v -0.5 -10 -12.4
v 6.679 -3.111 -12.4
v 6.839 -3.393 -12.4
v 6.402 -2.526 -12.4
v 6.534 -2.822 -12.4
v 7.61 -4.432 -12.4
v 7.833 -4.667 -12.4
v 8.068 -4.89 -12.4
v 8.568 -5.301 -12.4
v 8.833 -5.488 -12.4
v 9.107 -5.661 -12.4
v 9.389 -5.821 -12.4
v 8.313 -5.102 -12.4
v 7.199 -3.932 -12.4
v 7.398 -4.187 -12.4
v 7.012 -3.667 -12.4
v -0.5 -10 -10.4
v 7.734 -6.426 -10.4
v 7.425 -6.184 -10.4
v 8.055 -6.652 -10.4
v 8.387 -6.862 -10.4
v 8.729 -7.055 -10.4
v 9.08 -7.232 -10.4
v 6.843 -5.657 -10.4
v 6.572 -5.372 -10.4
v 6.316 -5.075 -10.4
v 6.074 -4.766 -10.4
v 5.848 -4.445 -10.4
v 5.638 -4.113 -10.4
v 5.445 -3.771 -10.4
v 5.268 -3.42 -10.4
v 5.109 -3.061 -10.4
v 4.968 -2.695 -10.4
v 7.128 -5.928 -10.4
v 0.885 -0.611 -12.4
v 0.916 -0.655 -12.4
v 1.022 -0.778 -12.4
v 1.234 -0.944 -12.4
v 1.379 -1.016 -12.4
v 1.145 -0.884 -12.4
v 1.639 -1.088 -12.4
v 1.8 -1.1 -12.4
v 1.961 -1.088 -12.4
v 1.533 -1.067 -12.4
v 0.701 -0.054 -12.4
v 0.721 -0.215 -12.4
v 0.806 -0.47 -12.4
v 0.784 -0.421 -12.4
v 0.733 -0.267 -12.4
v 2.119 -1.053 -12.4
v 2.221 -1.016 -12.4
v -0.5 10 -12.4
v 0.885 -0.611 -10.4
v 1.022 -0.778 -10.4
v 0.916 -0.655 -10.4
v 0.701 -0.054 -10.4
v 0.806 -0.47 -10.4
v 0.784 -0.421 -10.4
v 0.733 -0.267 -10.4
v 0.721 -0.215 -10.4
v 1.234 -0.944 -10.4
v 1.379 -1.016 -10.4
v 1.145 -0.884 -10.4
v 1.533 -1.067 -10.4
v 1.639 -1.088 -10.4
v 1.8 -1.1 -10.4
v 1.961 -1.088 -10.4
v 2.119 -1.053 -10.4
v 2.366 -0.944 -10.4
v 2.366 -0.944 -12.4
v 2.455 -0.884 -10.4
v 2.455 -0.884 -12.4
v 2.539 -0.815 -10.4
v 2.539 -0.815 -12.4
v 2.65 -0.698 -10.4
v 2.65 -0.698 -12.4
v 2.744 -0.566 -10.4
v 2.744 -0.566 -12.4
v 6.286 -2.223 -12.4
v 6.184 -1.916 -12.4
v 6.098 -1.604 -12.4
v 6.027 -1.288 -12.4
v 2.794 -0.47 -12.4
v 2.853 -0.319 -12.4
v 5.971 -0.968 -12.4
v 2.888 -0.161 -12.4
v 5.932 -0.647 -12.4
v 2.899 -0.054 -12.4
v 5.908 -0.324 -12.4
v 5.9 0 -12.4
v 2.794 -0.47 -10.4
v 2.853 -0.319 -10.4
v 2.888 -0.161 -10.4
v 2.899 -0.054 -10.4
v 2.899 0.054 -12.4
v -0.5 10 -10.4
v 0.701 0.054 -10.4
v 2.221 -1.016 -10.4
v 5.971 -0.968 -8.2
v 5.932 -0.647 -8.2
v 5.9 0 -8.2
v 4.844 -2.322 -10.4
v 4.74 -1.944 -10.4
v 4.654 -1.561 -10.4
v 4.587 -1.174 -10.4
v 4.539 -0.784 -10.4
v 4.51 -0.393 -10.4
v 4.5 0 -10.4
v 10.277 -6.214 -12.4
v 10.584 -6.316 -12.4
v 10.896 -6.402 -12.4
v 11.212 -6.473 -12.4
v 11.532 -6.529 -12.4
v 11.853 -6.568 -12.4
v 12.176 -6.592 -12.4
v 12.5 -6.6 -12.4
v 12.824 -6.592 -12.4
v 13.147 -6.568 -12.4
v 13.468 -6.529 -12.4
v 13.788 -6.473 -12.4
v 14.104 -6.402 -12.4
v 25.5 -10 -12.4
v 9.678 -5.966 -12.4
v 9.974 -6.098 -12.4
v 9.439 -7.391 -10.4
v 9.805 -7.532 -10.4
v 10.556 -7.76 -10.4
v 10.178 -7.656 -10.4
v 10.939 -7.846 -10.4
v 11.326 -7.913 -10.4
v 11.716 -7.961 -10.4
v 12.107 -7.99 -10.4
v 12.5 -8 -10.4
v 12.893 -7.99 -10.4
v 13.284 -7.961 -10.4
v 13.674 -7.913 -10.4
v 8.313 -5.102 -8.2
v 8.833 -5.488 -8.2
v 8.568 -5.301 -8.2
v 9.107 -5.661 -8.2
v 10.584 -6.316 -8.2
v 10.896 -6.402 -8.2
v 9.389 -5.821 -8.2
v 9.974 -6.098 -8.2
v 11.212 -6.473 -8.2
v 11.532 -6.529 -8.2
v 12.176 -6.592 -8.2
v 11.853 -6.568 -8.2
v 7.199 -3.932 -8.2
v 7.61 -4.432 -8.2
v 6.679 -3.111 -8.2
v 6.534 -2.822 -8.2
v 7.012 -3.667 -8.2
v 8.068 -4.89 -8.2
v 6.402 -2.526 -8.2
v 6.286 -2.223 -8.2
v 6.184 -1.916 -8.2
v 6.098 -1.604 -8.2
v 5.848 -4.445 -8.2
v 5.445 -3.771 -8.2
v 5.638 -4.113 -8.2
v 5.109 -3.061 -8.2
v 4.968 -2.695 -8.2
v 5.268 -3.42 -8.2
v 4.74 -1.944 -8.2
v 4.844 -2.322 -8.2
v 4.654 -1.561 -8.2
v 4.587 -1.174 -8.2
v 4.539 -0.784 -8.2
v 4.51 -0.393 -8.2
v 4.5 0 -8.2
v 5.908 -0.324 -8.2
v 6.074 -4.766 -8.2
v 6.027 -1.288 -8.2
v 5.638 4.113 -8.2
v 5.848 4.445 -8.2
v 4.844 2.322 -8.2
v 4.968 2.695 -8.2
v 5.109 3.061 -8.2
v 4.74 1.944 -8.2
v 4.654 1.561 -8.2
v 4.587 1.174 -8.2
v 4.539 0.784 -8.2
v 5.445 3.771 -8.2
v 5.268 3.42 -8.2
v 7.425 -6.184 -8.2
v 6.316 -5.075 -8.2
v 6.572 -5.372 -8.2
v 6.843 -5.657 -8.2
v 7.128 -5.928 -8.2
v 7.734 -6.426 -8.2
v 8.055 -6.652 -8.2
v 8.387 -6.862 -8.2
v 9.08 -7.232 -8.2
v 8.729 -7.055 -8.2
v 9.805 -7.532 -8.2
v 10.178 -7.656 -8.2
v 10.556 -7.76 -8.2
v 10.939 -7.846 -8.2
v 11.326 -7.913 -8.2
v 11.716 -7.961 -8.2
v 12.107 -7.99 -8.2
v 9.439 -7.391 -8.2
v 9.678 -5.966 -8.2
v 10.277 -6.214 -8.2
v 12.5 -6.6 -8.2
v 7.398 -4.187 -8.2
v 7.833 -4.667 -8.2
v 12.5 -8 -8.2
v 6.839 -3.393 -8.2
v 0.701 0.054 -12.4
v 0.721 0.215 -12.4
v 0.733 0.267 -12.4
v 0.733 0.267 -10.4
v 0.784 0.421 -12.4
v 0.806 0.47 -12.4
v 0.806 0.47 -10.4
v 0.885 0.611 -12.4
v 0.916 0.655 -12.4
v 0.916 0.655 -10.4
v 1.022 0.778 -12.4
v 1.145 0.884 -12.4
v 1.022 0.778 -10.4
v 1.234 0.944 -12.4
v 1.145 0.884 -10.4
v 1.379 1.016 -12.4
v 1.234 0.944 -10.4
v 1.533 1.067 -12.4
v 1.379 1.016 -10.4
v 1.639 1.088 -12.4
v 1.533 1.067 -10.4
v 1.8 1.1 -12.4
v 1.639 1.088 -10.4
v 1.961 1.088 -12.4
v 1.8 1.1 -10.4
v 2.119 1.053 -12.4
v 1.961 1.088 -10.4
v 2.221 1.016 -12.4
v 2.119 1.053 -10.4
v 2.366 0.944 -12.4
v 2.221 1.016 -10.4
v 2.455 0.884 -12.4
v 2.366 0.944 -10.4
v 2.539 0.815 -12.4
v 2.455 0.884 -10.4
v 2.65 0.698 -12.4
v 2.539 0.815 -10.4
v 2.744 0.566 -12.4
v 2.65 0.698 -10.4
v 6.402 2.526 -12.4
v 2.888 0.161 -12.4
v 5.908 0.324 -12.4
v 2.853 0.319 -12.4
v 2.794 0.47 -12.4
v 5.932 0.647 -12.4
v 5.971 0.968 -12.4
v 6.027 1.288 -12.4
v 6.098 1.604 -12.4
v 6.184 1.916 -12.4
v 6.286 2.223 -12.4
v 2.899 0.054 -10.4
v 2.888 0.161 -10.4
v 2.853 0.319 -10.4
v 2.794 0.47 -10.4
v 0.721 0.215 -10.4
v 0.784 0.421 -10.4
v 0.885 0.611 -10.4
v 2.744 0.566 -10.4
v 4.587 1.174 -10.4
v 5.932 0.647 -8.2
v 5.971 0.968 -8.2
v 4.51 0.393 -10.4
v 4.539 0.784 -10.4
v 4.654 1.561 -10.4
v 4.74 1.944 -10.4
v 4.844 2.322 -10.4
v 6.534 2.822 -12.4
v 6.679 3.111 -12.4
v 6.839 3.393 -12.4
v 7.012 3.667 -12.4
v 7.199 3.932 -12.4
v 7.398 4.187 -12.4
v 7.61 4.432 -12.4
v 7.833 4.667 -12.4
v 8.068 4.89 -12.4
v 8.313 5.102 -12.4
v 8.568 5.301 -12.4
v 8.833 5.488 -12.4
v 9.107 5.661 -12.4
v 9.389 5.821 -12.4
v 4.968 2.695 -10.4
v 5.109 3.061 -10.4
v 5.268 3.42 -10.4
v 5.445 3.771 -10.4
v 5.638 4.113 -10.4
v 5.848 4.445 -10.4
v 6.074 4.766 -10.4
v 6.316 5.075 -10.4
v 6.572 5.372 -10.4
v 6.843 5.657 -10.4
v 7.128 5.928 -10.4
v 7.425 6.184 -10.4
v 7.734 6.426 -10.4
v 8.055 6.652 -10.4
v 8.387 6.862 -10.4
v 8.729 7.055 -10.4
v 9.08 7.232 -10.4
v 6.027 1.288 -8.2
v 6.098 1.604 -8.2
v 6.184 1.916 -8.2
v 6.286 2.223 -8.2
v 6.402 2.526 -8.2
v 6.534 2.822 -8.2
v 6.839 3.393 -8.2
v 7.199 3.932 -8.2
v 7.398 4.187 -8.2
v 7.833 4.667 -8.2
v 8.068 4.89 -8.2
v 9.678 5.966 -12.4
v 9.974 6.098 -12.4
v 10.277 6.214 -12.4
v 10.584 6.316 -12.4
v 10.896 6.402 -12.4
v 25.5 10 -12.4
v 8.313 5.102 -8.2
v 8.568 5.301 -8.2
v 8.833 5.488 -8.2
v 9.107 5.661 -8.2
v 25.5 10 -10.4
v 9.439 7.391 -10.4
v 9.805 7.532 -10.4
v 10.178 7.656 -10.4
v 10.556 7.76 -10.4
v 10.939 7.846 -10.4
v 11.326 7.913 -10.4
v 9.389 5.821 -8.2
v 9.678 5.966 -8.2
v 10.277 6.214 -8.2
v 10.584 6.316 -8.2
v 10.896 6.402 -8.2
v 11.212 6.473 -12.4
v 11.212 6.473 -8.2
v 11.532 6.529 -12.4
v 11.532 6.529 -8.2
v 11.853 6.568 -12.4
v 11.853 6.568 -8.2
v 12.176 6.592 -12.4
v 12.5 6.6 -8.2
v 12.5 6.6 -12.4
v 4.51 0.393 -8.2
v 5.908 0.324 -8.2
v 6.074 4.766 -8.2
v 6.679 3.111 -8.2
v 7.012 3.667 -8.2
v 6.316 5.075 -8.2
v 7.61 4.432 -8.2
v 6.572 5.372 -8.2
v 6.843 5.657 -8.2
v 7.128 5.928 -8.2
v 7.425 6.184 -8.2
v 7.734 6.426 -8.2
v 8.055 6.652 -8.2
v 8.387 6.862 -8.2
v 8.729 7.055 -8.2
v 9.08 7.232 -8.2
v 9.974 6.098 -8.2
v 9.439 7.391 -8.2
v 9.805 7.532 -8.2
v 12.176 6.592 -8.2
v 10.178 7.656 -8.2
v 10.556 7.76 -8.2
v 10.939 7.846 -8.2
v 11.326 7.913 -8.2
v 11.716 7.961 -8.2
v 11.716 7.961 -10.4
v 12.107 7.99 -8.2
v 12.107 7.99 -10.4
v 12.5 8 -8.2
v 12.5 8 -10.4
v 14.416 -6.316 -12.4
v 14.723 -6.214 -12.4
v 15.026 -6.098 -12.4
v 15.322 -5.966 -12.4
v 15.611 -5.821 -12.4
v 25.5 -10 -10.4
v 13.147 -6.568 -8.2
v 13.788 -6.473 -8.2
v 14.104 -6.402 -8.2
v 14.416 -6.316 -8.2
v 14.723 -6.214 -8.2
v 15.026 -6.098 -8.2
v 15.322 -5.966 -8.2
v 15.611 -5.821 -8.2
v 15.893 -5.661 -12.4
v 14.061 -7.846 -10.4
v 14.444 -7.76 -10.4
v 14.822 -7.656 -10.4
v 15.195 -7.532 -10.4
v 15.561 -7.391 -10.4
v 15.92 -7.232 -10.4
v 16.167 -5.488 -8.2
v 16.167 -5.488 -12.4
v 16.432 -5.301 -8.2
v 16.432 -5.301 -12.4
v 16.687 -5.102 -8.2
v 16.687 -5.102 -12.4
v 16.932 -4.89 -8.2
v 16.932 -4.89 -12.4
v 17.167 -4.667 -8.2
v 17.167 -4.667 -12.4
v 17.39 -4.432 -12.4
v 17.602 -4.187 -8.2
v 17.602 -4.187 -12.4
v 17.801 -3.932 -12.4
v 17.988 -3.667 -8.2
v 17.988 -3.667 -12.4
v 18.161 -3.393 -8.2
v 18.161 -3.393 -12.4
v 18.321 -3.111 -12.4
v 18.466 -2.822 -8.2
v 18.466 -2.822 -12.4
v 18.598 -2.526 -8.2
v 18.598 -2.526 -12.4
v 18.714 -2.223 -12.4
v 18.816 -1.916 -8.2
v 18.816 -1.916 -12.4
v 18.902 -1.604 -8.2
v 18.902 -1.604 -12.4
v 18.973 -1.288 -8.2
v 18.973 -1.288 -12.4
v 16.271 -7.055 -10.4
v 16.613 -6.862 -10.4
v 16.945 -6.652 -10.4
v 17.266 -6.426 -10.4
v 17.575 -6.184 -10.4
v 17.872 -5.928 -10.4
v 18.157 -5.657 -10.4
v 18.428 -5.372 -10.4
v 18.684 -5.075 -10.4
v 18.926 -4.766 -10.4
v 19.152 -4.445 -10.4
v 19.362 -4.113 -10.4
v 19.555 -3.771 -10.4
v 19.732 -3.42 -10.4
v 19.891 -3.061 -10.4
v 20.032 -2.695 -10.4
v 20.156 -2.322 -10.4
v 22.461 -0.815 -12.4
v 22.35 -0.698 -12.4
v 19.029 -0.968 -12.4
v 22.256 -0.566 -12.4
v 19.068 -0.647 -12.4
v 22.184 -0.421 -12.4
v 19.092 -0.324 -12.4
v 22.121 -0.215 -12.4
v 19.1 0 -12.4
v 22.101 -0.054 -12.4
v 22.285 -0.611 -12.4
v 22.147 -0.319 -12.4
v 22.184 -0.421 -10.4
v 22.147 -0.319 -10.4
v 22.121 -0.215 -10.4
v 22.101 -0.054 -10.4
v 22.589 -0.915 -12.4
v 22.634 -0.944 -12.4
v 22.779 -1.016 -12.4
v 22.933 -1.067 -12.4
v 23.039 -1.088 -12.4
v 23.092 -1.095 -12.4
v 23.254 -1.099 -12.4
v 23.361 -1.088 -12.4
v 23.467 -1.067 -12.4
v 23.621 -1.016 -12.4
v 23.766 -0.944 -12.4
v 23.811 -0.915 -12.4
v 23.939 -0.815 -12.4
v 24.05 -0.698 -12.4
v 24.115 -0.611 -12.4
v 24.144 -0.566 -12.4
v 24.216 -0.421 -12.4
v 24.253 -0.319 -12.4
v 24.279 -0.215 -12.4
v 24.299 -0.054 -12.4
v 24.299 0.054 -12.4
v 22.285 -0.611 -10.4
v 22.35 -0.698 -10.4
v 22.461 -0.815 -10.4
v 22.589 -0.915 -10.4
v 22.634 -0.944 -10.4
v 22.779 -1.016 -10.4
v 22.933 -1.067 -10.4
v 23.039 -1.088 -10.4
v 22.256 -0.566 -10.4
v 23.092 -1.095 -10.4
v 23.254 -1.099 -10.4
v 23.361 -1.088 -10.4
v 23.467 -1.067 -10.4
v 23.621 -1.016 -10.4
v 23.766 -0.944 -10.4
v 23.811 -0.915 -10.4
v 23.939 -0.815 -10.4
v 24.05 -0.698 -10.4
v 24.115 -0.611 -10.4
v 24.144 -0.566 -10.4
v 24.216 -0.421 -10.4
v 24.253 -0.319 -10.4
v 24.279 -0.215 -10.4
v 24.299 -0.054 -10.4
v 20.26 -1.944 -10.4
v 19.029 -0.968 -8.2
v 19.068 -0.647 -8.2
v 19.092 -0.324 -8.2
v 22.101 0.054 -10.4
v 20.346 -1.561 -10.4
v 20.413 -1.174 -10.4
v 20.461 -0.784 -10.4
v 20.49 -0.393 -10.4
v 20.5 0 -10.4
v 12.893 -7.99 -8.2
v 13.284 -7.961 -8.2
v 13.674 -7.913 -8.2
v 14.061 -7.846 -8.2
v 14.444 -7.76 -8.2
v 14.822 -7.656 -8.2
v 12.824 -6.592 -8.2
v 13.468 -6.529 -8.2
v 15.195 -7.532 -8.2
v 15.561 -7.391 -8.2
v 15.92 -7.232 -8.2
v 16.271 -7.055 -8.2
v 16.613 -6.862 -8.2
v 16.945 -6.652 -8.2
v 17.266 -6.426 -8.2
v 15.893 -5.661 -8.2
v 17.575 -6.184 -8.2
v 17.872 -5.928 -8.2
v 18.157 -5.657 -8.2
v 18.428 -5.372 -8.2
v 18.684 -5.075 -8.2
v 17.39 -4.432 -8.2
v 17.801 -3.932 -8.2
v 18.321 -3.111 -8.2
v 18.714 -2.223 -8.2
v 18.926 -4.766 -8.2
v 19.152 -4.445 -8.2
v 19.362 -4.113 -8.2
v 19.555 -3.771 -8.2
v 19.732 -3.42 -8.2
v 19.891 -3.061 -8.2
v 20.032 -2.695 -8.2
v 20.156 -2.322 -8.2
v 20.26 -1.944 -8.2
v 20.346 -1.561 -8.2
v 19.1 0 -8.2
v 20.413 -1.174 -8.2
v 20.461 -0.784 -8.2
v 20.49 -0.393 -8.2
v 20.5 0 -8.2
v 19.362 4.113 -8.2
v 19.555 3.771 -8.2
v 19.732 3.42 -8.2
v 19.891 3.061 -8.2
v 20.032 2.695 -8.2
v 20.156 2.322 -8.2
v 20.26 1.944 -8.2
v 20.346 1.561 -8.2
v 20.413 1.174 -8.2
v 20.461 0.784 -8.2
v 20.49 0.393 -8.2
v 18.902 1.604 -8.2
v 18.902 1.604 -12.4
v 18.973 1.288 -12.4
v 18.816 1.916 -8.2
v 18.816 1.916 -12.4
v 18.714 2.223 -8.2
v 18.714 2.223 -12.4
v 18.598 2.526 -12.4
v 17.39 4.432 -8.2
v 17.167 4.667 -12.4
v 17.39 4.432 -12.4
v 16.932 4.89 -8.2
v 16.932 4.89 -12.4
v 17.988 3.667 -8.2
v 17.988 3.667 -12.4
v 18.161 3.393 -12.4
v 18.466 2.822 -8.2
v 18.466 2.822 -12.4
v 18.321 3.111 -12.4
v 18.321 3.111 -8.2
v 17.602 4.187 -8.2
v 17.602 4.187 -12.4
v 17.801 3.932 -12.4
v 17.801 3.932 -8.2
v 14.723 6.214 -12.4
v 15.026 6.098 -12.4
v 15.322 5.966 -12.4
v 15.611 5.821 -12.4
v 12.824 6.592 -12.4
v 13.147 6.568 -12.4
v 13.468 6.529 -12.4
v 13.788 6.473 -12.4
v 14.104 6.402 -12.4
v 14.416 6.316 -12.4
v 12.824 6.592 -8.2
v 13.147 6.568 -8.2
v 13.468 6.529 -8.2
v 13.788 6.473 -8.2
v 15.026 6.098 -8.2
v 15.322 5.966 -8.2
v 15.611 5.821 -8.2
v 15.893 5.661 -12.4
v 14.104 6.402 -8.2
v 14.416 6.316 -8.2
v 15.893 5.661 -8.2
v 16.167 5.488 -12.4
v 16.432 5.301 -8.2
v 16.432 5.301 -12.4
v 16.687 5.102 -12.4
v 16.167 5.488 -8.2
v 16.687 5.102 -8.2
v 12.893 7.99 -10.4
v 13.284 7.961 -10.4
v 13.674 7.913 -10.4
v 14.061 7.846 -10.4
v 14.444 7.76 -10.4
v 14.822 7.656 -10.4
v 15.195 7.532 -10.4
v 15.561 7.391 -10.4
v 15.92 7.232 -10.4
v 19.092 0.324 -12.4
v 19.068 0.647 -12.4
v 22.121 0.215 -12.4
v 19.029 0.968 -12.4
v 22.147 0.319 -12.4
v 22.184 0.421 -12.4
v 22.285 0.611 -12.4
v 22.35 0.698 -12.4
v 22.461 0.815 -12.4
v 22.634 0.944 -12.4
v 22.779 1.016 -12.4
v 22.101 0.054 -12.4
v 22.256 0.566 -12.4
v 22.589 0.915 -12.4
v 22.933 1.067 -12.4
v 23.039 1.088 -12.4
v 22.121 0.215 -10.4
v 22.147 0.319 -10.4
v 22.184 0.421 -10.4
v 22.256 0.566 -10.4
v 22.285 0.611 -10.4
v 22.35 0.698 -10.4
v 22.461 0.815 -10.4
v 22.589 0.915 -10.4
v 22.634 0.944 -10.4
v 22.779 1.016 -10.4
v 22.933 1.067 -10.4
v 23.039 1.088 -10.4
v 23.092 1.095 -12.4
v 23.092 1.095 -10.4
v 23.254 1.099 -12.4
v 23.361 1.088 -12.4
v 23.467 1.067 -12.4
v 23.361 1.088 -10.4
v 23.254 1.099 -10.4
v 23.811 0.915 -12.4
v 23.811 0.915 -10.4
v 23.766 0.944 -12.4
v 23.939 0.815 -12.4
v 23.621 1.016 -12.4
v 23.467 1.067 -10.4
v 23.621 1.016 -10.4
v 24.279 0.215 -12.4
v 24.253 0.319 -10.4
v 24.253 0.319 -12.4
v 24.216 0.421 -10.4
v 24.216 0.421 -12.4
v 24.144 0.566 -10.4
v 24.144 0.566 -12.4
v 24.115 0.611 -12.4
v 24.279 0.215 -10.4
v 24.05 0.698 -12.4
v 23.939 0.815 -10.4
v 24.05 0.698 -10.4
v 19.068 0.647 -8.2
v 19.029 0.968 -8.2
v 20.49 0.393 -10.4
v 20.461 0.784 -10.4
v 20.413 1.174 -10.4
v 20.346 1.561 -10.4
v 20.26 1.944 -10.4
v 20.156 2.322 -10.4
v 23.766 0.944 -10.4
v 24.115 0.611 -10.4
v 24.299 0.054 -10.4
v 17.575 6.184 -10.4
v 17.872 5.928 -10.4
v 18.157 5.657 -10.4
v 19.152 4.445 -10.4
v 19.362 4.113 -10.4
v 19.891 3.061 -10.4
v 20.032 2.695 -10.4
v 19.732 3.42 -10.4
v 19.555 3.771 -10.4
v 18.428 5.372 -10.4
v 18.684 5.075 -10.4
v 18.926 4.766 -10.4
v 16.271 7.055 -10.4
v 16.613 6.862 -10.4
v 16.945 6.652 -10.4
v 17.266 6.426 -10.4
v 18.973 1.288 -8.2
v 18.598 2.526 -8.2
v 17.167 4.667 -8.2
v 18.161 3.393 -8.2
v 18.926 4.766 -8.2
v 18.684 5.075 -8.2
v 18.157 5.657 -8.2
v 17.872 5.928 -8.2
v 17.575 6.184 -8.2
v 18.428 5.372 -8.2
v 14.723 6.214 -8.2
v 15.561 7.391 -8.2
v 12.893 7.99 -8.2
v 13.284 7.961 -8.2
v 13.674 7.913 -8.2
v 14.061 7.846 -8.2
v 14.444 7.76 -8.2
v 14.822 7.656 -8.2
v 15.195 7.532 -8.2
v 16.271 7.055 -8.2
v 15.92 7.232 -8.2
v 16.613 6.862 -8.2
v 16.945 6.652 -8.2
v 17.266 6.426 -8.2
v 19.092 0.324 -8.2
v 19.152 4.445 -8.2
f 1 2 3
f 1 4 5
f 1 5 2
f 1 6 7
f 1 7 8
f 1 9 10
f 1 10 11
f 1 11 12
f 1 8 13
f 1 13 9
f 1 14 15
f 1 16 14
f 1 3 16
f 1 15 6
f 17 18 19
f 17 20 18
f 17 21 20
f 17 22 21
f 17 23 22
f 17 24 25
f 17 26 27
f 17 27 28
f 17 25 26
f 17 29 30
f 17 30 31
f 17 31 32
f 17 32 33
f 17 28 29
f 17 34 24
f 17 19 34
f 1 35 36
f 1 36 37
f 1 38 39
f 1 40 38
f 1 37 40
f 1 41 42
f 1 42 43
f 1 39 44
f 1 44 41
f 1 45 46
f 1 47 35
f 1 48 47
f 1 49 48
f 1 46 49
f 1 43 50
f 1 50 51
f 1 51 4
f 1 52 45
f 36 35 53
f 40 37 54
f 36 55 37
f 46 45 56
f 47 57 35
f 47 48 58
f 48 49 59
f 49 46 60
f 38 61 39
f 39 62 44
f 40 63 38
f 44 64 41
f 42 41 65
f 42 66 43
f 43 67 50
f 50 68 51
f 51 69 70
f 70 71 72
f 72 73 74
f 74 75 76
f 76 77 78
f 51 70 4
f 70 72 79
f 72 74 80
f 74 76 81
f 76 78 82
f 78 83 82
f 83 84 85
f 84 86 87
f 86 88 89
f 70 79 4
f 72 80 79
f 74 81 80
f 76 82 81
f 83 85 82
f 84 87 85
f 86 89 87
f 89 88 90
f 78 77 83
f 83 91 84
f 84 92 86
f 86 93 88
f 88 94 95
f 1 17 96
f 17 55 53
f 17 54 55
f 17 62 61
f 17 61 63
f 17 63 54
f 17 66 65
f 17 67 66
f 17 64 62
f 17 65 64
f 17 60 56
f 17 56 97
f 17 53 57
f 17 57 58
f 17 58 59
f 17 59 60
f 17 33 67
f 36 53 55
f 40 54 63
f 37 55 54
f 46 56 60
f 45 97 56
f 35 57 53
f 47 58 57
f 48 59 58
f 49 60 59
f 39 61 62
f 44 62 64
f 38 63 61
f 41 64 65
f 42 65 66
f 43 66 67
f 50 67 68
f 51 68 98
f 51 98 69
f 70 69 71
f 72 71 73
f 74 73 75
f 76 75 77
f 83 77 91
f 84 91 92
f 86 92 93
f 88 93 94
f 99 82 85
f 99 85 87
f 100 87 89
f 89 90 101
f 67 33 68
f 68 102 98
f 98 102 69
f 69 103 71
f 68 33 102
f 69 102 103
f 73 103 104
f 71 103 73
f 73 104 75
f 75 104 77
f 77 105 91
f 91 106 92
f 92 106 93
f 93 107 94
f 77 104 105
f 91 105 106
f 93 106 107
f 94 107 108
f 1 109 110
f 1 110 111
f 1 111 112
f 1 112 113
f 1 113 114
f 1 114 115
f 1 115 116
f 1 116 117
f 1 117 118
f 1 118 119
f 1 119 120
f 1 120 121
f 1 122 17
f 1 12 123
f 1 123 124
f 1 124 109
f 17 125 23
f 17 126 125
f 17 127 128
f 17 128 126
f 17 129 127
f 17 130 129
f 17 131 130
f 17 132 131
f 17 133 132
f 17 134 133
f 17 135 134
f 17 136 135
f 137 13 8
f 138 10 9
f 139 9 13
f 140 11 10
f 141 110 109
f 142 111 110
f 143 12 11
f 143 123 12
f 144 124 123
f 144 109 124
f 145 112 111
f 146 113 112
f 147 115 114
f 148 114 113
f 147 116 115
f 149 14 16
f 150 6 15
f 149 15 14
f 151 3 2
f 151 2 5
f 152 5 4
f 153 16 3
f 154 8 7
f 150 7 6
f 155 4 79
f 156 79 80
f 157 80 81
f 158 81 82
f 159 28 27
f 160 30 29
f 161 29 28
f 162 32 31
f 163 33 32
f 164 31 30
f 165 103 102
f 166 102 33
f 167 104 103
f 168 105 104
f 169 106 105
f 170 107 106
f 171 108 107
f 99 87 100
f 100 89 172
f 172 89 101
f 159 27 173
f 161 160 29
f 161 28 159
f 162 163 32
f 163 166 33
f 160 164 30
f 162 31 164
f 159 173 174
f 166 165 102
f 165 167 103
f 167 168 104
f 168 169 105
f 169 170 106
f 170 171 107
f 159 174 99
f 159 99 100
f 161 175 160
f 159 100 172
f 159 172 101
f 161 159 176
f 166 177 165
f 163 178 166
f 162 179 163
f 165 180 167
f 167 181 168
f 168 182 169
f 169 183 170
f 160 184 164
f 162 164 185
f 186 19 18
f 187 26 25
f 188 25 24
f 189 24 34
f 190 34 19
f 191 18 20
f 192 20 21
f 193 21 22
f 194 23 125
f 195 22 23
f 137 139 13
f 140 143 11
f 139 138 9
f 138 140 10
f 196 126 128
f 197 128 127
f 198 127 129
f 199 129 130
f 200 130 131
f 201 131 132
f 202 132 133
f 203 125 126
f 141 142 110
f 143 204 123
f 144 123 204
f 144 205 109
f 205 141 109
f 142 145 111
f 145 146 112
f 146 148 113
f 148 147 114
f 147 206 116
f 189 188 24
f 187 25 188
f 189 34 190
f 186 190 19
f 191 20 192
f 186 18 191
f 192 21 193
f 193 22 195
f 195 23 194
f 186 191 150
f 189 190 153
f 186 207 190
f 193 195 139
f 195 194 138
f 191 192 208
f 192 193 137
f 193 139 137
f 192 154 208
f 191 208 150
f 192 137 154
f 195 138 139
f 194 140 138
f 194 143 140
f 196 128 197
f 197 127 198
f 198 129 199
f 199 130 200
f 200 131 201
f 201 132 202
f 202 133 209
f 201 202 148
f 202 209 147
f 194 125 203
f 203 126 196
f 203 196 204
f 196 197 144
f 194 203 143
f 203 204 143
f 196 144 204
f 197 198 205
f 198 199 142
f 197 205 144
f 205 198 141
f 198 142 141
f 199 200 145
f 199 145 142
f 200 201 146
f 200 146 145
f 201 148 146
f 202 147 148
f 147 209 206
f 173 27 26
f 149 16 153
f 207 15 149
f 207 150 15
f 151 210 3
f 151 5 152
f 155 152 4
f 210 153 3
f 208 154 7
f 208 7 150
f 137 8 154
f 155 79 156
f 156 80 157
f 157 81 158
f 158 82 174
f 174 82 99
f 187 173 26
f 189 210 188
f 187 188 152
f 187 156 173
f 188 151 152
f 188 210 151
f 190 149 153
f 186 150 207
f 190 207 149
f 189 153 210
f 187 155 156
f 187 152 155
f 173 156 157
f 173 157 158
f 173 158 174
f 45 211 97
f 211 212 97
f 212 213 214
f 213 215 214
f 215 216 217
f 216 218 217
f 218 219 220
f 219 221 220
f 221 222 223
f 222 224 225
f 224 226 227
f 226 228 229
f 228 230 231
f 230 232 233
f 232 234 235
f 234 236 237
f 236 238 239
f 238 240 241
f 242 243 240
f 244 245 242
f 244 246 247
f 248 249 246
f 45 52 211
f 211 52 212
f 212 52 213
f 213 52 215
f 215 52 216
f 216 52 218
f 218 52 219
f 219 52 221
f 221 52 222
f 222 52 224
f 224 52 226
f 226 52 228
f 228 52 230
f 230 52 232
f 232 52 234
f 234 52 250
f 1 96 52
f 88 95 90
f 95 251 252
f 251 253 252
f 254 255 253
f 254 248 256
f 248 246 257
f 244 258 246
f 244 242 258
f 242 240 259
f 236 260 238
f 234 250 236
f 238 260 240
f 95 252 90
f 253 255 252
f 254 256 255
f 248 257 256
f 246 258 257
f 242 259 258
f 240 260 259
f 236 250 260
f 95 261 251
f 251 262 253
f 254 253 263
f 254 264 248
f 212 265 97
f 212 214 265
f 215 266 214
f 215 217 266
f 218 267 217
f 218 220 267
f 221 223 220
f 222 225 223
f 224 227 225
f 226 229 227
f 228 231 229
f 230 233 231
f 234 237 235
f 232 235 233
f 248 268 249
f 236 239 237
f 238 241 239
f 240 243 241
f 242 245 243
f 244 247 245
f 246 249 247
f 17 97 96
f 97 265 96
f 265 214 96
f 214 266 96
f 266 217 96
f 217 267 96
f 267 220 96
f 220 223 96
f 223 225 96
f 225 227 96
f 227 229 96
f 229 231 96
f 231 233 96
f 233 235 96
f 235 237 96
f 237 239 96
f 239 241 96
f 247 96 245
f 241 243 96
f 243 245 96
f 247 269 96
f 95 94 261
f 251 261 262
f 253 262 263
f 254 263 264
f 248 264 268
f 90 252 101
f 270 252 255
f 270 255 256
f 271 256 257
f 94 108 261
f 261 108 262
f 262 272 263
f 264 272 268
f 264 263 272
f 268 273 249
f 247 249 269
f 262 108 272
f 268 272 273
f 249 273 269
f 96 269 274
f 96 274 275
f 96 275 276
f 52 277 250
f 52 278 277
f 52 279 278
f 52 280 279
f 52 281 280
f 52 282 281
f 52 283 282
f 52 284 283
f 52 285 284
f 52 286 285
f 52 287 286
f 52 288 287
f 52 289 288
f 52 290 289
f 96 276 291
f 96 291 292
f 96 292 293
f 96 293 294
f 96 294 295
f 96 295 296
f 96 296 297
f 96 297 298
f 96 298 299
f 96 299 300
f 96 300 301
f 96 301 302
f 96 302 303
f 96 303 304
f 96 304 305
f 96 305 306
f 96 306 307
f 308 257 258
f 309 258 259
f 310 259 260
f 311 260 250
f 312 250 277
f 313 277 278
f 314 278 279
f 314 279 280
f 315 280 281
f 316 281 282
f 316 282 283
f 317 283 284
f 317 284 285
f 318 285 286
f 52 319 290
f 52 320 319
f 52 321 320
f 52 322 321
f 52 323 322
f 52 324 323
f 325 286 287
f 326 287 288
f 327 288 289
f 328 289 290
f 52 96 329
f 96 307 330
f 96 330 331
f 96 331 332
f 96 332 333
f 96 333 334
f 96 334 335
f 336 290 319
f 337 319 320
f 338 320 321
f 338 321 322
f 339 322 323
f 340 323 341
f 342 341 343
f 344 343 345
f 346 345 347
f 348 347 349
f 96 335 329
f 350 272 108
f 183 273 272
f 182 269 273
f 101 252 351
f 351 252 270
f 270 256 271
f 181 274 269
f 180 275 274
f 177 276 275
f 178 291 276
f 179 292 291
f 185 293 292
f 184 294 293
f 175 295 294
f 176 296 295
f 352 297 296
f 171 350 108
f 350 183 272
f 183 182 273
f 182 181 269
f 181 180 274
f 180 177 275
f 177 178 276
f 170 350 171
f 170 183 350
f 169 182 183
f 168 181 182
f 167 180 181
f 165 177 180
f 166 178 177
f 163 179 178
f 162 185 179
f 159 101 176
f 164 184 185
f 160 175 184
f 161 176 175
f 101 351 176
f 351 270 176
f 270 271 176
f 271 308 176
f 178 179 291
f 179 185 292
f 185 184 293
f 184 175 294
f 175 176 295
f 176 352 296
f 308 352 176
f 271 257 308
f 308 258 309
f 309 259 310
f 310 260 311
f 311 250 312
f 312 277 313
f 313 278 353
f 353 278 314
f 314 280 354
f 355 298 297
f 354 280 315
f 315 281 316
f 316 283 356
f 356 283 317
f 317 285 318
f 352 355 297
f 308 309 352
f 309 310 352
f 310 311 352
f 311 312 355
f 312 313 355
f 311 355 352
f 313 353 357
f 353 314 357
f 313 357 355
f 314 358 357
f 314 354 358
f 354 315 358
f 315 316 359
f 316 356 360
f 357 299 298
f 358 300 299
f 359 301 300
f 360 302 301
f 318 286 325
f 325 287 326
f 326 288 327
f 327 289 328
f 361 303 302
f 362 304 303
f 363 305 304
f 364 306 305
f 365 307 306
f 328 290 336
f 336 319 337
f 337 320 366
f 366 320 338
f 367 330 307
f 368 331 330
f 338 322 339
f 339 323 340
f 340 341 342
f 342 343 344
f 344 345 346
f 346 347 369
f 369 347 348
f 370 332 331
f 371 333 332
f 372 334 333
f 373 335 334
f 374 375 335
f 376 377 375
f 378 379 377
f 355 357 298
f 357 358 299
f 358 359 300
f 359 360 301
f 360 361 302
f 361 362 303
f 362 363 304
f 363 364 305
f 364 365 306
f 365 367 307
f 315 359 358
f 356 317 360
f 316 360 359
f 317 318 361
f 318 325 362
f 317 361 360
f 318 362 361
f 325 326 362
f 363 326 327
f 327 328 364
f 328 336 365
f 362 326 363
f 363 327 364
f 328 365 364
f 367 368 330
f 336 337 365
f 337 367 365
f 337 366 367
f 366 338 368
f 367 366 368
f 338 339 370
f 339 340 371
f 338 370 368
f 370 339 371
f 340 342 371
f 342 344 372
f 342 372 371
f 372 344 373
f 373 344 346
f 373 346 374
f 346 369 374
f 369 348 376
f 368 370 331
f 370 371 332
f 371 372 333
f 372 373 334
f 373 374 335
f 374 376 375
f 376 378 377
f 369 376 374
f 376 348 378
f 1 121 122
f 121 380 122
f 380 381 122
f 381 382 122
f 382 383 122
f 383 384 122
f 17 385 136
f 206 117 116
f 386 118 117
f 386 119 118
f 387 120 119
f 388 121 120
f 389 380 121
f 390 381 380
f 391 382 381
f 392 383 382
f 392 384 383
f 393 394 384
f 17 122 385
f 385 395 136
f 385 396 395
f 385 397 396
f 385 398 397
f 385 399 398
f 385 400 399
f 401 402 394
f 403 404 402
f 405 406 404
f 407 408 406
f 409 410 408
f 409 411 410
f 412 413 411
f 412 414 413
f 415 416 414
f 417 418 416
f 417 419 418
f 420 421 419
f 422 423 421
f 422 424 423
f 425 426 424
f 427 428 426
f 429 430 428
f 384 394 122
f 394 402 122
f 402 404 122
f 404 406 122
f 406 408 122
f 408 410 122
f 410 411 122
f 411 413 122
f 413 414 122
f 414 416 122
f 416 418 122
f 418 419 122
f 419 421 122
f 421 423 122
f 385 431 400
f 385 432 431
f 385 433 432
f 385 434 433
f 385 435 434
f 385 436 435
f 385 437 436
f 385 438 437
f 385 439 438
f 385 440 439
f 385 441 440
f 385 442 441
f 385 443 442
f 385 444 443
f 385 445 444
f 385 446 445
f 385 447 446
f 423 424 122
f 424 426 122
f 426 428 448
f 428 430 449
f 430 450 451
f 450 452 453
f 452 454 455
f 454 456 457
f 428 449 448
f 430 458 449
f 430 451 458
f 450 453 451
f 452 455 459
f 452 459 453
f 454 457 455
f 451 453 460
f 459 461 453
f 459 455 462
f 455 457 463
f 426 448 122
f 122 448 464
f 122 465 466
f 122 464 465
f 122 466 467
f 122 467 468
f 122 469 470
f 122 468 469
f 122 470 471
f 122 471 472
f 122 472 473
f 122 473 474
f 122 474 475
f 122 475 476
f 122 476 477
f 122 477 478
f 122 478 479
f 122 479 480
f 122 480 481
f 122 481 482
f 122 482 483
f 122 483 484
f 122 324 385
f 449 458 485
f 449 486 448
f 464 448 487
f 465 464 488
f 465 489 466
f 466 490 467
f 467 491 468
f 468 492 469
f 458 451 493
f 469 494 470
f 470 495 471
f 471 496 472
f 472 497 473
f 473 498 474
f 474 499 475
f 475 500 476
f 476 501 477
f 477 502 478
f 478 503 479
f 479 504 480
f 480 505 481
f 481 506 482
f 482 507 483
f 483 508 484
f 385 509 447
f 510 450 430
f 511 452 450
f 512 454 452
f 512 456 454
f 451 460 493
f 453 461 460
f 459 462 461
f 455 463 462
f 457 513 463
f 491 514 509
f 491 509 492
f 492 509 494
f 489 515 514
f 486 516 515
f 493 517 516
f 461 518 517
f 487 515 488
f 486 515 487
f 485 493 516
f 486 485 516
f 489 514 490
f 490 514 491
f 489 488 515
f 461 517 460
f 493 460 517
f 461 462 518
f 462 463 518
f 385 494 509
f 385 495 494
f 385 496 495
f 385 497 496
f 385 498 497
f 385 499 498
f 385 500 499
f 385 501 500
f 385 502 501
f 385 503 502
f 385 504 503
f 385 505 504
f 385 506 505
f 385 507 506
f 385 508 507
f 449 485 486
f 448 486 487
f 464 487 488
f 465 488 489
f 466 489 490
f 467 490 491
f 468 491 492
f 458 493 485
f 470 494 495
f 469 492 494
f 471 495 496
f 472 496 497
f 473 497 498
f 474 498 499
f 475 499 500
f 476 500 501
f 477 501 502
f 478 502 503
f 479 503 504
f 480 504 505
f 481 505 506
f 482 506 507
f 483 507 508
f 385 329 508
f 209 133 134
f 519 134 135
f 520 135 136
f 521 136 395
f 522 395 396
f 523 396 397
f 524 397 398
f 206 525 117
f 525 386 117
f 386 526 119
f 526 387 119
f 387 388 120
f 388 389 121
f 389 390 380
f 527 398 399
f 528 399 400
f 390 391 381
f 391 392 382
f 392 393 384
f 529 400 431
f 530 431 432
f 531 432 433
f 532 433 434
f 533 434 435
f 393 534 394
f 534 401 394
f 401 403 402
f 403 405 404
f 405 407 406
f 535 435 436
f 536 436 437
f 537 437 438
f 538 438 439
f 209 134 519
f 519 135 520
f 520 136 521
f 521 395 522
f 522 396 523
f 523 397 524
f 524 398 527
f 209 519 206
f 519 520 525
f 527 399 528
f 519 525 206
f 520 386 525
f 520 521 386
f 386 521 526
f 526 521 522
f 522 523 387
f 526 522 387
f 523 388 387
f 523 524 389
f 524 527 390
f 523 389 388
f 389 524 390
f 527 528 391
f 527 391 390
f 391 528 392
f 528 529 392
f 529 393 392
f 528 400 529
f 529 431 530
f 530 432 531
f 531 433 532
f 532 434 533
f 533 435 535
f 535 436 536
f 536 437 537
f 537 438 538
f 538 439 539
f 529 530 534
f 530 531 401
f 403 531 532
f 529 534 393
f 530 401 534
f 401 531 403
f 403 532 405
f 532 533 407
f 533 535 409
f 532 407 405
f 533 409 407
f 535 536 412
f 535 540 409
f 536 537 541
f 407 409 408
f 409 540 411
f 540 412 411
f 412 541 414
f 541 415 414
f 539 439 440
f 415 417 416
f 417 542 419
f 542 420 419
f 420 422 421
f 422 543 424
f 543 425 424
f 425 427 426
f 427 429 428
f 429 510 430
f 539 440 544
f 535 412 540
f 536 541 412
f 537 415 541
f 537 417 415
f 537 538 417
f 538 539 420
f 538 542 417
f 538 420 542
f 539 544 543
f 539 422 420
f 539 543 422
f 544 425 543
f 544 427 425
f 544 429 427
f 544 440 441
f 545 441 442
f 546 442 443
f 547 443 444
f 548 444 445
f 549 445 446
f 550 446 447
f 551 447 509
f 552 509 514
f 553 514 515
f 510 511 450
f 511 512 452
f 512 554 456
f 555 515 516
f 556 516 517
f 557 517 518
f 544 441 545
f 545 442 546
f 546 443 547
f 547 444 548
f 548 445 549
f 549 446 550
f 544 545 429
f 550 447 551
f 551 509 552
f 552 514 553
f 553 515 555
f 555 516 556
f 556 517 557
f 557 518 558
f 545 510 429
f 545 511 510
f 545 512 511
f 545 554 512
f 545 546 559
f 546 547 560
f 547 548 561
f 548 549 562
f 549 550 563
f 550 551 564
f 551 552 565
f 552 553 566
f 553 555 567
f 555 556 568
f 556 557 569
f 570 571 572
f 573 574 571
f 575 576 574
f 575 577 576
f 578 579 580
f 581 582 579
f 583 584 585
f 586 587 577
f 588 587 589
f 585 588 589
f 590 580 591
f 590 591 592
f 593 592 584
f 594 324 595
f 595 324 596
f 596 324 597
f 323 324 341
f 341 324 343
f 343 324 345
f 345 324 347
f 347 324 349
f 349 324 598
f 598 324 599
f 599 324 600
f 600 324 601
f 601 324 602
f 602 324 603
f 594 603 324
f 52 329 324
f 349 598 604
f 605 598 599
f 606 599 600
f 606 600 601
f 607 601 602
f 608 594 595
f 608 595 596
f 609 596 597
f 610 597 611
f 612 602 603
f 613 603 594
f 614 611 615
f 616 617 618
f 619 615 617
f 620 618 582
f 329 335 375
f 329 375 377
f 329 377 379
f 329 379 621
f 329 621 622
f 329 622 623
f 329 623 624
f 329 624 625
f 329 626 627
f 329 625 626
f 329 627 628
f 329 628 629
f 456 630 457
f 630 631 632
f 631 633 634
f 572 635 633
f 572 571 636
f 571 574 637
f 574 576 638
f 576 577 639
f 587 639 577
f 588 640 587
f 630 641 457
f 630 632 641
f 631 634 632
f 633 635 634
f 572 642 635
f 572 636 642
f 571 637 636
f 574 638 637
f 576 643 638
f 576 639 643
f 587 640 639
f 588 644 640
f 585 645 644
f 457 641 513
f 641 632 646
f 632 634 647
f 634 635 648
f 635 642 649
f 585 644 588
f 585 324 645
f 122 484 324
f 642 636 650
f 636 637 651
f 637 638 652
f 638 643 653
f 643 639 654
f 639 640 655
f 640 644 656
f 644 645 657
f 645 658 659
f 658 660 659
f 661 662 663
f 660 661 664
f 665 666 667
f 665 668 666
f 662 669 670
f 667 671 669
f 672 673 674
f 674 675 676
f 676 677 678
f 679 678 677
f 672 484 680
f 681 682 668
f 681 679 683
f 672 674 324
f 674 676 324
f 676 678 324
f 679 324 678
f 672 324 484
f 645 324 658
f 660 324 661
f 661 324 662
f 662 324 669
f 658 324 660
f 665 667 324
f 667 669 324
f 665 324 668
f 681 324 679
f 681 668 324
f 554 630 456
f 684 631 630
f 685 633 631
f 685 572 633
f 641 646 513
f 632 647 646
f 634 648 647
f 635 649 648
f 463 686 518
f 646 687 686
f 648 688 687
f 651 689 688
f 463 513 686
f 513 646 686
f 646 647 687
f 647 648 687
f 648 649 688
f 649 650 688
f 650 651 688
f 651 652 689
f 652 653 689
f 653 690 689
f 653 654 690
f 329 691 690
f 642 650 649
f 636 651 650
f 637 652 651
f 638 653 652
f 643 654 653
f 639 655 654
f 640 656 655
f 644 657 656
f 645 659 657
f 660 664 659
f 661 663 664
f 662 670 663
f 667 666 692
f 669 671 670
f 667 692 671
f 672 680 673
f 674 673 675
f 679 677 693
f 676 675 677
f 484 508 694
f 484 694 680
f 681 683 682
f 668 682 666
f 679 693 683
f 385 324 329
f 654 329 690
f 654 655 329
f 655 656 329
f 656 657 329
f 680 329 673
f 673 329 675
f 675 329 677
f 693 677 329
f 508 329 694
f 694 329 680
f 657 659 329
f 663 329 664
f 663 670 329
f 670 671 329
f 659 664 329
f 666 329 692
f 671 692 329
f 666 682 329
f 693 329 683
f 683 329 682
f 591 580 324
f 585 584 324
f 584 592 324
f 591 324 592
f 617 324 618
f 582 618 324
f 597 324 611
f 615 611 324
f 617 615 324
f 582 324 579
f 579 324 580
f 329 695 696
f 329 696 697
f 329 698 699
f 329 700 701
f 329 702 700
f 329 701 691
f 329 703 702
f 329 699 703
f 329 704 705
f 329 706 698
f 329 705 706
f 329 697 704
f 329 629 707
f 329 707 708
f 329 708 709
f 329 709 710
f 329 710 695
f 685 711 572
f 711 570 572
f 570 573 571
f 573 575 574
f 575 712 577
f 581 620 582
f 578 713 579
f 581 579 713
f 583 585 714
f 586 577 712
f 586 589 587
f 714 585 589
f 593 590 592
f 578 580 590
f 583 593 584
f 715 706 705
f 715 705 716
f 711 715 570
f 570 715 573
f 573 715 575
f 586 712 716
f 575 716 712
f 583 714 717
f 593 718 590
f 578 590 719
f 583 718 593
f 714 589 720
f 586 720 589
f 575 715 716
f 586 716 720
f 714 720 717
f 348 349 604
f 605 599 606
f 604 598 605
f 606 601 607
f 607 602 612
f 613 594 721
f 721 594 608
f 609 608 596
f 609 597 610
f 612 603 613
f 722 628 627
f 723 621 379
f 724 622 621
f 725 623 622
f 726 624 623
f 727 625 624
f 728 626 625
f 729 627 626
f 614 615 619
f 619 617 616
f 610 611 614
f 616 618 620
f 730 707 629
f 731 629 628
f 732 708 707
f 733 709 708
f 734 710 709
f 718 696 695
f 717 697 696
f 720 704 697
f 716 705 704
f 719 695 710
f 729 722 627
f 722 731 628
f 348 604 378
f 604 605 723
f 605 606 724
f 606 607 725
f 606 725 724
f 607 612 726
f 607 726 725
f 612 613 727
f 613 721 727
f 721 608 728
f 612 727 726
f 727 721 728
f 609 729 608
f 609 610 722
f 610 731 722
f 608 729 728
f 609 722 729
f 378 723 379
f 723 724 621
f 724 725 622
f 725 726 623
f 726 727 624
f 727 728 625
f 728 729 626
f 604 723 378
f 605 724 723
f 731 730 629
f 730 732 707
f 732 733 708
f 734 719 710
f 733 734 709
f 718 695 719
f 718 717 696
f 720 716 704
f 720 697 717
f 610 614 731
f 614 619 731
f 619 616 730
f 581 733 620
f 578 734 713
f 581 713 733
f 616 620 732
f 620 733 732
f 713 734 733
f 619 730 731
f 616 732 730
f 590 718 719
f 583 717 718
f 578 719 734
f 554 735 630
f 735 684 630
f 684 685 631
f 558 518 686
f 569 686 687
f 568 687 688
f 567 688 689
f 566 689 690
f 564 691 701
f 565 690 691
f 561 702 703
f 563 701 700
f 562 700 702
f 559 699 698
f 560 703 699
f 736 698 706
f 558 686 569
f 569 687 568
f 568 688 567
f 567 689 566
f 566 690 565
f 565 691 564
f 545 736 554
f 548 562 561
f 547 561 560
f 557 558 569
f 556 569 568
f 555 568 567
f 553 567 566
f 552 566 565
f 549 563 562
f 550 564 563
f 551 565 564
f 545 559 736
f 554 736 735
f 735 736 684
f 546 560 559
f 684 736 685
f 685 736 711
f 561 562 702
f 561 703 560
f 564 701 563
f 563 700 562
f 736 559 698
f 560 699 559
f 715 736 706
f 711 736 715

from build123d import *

# Parameters (mm, degrees)
CAP_PLATE_26X20X2_START           = -12.4
CAP_PLATE_26X20X2_PROFILE_W       = 26
CAP_PLATE_26X20X2_PROFILE_H       = 20
CAP_PLATE_26X20X2_PROFILE_R       = 6.6
CAP_PLATE_26X20X2_PROFILE_R_2     = 1.1
CAP_PLATE_26X20X2_DEPTH           = 2
BEARING_RETENTION_LIP_START       = -10.41
BEARING_RETENTION_LIP_PROFILE_R   = 8
BEARING_RETENTION_LIP_PROFILE_R_2 = 6.6
BEARING_RETENTION_LIP_DEPTH       = 2.21


with BuildPart() as part:
    # Cap_plate_26x20x2_Profile → Cap_plate_26x20x2 (new body)
    with BuildSketch(Plane.XY.offset(CAP_PLATE_26X20X2_START)):
        with Locations((12.5, 0)):
            Rectangle(CAP_PLATE_26X20X2_PROFILE_W, CAP_PLATE_26X20X2_PROFILE_H)
        with Locations((12.5, 0)):
            Circle(CAP_PLATE_26X20X2_PROFILE_R, mode=Mode.SUBTRACT)
        with Locations((1.8, 0)):
            Circle(CAP_PLATE_26X20X2_PROFILE_R_2, mode=Mode.SUBTRACT)
        with Locations((23.2, 0)):
            Circle(CAP_PLATE_26X20X2_PROFILE_R_2, mode=Mode.SUBTRACT)
    extrude(amount=CAP_PLATE_26X20X2_DEPTH)

    # Bearing_retention_lip_Profile → Bearing_retention_lip (add)
    with BuildSketch(Plane.XY.offset(BEARING_RETENTION_LIP_START)):
        with Locations(Location((12.5, 0, 0), (0, 0, 180))):
            Circle(BEARING_RETENTION_LIP_PROFILE_R)
        with Locations((12.5, 0)):
            Circle(BEARING_RETENTION_LIP_PROFILE_R_2, mode=Mode.SUBTRACT)
    extrude(amount=BEARING_RETENTION_LIP_DEPTH)


solid = part.part
